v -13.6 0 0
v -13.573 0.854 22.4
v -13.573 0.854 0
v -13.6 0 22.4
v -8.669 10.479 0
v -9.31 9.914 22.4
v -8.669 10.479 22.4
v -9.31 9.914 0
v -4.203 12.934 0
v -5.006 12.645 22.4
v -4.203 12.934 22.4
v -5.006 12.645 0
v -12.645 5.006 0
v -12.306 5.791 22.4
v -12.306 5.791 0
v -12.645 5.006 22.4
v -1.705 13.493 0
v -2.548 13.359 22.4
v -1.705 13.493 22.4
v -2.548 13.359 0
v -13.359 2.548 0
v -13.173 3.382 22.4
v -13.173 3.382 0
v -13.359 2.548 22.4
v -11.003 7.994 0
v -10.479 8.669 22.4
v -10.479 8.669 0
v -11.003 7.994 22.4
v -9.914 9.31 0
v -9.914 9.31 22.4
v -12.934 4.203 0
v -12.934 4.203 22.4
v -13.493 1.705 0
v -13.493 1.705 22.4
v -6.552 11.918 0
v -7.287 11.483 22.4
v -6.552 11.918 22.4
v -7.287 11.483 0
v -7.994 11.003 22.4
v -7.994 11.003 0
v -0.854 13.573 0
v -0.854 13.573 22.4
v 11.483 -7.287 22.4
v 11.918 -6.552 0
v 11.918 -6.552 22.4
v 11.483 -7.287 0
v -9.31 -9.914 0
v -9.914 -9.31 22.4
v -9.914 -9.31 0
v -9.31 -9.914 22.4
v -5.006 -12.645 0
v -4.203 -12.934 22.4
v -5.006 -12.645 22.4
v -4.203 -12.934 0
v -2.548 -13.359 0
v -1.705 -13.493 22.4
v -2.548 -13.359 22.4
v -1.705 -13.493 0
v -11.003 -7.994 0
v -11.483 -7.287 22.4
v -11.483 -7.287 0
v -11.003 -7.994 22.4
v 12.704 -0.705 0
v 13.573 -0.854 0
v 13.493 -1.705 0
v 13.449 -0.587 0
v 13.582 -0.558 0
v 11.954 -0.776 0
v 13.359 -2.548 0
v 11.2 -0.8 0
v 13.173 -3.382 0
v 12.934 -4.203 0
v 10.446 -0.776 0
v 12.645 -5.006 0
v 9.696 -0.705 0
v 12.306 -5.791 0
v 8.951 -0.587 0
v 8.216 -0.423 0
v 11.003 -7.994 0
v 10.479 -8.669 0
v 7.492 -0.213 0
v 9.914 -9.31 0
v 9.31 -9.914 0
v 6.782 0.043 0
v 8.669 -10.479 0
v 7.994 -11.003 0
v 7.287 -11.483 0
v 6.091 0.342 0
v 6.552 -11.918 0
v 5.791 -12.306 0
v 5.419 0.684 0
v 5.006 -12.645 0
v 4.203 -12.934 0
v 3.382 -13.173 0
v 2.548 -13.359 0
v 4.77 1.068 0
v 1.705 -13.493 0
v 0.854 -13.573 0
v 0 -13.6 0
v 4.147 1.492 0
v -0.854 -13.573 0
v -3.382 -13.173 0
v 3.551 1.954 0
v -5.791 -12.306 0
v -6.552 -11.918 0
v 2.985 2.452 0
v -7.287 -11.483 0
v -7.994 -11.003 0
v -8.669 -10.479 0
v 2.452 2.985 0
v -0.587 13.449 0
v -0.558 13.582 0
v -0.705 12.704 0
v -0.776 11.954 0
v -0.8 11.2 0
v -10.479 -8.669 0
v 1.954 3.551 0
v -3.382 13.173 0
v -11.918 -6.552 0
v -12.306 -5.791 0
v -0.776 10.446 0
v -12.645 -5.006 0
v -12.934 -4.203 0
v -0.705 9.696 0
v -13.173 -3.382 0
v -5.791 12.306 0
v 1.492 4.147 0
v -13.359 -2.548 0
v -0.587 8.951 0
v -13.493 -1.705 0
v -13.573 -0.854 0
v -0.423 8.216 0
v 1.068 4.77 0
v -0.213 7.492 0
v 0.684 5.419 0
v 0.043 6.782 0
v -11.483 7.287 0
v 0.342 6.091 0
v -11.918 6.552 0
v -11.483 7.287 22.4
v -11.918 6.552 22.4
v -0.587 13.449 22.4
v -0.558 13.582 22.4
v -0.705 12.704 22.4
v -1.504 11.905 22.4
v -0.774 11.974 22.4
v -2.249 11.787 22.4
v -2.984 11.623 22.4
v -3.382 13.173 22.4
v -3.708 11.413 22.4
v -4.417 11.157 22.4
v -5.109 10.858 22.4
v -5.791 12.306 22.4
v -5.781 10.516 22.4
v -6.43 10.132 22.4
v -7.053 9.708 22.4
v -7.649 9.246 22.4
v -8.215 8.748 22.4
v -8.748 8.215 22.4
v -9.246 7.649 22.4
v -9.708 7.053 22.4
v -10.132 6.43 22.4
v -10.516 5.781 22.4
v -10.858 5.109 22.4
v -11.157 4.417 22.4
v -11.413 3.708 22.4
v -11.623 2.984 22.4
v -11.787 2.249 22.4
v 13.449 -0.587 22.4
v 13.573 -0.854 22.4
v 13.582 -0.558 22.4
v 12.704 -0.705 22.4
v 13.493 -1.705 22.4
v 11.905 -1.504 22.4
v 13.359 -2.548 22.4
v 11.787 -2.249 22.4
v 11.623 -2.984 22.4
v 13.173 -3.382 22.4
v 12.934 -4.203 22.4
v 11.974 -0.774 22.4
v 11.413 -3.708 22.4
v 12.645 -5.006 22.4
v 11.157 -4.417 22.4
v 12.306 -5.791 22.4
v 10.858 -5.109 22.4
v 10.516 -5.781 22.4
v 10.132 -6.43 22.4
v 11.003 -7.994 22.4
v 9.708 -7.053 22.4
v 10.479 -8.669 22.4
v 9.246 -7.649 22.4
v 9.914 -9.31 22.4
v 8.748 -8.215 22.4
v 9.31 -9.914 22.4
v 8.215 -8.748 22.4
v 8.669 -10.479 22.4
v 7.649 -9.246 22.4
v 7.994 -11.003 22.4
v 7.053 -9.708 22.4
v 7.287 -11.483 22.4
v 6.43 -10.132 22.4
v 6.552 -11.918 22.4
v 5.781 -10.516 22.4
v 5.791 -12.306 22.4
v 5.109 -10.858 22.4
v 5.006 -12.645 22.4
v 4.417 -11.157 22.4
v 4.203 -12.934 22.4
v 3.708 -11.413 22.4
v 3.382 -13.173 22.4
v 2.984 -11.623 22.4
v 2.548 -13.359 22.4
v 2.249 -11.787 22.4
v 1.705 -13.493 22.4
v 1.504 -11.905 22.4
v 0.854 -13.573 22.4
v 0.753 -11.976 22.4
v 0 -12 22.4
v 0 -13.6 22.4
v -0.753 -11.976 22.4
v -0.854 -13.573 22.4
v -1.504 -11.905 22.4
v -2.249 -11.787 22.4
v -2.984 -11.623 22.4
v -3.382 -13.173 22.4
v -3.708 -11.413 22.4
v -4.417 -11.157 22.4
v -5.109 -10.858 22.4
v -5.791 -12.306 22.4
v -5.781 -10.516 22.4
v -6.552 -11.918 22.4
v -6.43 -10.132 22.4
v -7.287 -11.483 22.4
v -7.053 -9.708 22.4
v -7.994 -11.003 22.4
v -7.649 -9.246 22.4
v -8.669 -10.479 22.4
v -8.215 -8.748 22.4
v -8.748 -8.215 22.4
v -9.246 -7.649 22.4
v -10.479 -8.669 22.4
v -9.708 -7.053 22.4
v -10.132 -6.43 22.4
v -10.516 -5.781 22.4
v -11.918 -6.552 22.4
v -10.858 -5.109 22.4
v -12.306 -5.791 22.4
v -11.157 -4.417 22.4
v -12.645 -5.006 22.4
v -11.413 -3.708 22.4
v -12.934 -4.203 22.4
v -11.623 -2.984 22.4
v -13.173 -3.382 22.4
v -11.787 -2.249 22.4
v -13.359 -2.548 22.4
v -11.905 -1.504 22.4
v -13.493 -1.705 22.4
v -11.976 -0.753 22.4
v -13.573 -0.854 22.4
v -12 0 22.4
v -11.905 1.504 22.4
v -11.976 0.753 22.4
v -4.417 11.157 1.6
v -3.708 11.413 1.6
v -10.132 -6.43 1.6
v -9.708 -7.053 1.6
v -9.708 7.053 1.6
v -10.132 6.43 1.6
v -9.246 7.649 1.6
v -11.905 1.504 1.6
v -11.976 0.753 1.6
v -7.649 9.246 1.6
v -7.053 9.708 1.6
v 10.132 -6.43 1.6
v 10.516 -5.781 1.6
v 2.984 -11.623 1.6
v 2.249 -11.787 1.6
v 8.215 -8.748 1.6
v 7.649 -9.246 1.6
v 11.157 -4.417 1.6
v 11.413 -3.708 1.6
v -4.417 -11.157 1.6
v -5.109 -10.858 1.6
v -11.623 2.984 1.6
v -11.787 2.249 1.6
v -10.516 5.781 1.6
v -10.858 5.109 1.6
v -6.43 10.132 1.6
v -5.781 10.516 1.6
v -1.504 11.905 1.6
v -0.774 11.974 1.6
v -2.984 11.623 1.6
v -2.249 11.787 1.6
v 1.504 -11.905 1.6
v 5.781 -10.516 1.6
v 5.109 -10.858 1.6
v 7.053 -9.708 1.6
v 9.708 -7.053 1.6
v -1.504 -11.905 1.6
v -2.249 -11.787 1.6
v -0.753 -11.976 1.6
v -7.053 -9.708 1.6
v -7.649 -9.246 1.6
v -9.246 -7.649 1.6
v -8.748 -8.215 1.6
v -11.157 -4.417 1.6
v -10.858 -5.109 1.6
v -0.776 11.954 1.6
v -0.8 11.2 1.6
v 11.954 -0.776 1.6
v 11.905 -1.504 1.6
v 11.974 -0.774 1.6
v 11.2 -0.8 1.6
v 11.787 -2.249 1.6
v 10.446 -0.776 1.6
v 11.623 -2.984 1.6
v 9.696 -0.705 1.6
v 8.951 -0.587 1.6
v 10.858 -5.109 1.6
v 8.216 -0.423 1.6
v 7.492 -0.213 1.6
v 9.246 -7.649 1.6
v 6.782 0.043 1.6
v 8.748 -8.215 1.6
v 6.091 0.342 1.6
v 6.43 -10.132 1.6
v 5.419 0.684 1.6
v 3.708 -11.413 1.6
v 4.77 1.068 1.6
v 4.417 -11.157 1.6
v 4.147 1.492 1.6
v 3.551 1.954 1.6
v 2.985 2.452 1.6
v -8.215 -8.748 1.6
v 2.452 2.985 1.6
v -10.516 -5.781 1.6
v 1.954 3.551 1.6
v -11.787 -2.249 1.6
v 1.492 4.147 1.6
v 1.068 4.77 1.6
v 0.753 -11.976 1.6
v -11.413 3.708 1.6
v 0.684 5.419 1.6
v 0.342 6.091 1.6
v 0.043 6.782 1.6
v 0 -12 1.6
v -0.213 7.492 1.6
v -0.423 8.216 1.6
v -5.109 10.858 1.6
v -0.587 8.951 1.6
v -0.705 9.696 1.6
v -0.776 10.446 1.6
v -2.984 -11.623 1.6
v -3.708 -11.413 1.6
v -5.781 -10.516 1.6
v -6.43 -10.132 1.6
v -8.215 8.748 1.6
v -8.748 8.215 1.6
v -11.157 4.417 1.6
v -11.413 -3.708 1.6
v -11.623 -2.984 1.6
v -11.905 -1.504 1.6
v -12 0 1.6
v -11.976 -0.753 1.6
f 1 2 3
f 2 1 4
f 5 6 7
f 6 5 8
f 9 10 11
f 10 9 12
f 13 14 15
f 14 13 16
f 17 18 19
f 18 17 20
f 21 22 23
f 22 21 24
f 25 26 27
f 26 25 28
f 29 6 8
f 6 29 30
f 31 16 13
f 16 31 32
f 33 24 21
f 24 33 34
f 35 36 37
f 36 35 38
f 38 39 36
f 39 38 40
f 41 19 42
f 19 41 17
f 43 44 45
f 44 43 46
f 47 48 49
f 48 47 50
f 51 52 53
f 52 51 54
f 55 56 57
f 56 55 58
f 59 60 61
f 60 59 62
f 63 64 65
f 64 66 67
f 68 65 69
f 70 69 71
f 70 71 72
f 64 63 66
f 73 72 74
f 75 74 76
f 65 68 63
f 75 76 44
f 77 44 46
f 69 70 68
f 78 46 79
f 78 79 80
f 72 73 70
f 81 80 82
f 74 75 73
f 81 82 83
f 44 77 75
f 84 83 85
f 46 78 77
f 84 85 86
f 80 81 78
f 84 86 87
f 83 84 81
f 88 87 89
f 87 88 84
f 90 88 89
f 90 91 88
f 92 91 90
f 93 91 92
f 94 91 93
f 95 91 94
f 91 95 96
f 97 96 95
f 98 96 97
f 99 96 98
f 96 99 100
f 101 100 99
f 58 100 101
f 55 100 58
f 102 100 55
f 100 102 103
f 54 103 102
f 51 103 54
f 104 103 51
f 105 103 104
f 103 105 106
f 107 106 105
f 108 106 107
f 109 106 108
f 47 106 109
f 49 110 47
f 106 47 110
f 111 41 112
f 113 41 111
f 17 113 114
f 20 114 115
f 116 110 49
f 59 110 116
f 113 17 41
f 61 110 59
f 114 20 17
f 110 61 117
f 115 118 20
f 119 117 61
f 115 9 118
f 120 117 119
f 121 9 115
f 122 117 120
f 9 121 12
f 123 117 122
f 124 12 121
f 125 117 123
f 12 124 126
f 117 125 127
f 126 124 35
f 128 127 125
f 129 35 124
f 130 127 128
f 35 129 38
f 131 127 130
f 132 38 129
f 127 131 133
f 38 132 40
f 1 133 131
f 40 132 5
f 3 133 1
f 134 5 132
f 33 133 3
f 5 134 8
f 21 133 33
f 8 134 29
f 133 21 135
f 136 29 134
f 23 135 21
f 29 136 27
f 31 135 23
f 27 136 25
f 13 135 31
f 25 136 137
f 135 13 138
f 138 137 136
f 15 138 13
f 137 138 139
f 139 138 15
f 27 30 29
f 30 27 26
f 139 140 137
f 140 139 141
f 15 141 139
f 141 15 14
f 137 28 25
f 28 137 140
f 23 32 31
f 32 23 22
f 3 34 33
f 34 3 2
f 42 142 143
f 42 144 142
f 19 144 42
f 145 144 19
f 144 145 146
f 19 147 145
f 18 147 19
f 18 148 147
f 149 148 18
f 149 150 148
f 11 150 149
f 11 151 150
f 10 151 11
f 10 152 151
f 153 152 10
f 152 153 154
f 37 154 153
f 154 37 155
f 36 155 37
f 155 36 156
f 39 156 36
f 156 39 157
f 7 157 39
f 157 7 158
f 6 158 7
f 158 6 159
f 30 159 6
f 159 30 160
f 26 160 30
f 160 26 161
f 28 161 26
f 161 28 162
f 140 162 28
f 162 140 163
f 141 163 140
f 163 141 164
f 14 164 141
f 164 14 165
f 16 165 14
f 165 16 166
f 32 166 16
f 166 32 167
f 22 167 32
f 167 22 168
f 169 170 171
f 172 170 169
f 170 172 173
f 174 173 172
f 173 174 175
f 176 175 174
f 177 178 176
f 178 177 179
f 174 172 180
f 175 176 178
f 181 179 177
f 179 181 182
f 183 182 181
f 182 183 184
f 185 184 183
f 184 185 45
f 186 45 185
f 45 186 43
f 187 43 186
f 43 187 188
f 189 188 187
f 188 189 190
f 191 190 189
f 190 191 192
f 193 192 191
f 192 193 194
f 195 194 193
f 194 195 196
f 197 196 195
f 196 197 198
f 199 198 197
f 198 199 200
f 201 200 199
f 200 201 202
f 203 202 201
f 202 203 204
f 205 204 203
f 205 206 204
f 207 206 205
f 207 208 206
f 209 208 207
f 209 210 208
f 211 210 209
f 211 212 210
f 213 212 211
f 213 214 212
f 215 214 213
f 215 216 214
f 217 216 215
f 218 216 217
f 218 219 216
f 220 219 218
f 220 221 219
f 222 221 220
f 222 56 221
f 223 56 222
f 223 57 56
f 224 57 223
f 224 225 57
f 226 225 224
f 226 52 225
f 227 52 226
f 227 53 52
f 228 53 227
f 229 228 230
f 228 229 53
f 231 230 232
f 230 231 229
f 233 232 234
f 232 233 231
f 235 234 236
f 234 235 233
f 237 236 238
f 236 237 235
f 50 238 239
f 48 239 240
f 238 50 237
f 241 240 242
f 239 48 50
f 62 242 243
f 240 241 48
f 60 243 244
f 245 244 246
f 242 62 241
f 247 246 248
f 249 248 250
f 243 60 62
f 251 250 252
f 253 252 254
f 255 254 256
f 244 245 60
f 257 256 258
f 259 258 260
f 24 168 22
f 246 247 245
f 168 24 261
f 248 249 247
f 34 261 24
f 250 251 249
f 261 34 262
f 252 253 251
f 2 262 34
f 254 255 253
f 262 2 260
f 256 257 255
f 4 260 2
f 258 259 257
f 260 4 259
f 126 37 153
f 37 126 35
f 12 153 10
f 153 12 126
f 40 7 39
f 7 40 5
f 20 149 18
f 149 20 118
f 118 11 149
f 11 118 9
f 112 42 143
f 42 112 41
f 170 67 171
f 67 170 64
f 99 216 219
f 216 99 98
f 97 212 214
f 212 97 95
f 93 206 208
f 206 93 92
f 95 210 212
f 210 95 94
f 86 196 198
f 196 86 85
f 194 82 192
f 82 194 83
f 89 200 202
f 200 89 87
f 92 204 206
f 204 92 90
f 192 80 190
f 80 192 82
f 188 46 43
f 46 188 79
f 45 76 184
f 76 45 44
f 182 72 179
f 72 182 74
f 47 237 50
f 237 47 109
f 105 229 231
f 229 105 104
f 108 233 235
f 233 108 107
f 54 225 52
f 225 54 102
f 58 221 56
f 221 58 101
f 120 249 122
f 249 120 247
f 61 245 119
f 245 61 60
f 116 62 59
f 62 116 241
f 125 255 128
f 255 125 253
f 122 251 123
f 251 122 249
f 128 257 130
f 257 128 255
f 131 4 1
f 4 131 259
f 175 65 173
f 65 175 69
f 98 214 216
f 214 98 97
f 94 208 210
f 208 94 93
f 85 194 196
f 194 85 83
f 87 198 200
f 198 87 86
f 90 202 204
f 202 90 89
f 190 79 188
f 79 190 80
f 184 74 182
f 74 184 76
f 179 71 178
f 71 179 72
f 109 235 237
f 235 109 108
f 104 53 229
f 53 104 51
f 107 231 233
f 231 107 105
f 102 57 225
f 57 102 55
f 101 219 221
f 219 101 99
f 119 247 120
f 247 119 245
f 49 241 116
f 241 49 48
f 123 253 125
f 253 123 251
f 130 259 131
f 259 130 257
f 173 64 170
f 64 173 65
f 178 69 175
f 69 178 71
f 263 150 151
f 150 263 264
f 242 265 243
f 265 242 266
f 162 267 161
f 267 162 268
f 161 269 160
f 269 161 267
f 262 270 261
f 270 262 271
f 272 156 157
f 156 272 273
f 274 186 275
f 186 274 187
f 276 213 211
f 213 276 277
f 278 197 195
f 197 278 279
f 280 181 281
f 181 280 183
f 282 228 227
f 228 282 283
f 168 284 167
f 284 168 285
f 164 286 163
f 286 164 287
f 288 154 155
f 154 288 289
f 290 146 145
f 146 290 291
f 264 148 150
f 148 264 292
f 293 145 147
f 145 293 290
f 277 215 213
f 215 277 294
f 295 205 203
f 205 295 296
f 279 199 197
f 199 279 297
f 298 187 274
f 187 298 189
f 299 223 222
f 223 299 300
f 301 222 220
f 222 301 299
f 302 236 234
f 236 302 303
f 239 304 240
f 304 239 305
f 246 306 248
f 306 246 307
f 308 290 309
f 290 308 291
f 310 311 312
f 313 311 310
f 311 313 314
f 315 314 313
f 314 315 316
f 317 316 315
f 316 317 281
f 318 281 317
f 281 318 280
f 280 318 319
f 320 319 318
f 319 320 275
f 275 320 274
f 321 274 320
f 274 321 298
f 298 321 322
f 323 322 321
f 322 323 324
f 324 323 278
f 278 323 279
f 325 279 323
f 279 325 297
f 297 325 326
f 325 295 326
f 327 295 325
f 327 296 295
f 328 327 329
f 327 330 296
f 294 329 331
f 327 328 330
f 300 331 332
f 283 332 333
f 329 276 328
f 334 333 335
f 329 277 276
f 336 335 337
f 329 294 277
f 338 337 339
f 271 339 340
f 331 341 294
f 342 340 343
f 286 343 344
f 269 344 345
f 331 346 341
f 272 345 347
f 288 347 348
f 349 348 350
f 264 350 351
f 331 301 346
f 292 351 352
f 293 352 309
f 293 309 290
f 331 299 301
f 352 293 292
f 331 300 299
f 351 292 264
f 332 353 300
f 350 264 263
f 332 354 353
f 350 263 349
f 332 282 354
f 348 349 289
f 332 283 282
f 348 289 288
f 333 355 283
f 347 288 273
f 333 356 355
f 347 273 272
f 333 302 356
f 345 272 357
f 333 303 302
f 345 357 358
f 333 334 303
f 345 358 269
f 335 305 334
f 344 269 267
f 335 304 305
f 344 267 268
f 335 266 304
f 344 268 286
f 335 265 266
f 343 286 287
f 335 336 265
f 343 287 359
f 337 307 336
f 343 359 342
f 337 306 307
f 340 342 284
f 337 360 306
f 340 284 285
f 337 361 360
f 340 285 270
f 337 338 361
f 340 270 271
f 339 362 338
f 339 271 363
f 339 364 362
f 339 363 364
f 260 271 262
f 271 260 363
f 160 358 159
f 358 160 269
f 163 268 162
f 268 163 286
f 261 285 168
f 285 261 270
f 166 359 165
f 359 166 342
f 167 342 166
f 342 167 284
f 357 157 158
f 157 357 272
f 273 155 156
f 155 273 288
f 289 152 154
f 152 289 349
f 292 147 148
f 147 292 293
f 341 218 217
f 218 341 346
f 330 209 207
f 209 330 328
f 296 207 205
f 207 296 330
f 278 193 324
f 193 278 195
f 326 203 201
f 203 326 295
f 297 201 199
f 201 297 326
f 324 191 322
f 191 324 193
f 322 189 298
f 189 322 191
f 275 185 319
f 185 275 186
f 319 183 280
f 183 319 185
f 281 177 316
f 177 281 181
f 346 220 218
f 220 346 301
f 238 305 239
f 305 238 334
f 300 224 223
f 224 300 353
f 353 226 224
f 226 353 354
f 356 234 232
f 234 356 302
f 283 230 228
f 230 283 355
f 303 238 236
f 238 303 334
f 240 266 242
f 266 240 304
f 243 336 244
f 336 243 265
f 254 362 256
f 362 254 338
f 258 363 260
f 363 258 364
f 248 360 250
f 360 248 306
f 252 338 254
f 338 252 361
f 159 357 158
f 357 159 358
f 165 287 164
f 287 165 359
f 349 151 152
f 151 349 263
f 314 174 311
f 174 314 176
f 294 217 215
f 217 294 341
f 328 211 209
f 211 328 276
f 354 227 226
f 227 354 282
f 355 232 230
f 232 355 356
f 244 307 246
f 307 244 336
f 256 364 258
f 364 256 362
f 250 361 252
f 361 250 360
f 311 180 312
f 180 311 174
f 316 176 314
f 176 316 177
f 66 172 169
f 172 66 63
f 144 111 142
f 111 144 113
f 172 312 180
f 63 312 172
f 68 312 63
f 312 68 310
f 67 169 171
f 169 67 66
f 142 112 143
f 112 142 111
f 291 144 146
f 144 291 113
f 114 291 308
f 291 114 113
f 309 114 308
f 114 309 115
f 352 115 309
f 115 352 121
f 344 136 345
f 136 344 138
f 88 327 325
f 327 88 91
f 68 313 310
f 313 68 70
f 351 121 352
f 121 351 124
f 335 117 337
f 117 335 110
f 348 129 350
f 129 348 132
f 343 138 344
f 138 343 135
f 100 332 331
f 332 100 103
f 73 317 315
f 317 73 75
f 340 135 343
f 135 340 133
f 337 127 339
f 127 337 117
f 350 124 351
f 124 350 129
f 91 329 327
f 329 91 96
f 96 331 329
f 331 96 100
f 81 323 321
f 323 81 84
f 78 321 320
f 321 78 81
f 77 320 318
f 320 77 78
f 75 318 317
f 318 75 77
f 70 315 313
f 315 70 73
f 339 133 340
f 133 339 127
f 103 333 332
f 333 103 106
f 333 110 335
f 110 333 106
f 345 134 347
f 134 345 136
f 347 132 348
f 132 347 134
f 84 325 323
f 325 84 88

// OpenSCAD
module token_holder()
{
    scale(1.6) difference()
    {
        union()
        {
            cylinder(h=14, r=8.5);
            cylinder(h=0.5, r=8.5);
        }
        translate([0, 0, 1]) cylinder(h=14, r=7.5);
        translate([7, 7, -1]) cylinder(h=16, r=7.5);
    }
}

$fn=100;
token_holder();
